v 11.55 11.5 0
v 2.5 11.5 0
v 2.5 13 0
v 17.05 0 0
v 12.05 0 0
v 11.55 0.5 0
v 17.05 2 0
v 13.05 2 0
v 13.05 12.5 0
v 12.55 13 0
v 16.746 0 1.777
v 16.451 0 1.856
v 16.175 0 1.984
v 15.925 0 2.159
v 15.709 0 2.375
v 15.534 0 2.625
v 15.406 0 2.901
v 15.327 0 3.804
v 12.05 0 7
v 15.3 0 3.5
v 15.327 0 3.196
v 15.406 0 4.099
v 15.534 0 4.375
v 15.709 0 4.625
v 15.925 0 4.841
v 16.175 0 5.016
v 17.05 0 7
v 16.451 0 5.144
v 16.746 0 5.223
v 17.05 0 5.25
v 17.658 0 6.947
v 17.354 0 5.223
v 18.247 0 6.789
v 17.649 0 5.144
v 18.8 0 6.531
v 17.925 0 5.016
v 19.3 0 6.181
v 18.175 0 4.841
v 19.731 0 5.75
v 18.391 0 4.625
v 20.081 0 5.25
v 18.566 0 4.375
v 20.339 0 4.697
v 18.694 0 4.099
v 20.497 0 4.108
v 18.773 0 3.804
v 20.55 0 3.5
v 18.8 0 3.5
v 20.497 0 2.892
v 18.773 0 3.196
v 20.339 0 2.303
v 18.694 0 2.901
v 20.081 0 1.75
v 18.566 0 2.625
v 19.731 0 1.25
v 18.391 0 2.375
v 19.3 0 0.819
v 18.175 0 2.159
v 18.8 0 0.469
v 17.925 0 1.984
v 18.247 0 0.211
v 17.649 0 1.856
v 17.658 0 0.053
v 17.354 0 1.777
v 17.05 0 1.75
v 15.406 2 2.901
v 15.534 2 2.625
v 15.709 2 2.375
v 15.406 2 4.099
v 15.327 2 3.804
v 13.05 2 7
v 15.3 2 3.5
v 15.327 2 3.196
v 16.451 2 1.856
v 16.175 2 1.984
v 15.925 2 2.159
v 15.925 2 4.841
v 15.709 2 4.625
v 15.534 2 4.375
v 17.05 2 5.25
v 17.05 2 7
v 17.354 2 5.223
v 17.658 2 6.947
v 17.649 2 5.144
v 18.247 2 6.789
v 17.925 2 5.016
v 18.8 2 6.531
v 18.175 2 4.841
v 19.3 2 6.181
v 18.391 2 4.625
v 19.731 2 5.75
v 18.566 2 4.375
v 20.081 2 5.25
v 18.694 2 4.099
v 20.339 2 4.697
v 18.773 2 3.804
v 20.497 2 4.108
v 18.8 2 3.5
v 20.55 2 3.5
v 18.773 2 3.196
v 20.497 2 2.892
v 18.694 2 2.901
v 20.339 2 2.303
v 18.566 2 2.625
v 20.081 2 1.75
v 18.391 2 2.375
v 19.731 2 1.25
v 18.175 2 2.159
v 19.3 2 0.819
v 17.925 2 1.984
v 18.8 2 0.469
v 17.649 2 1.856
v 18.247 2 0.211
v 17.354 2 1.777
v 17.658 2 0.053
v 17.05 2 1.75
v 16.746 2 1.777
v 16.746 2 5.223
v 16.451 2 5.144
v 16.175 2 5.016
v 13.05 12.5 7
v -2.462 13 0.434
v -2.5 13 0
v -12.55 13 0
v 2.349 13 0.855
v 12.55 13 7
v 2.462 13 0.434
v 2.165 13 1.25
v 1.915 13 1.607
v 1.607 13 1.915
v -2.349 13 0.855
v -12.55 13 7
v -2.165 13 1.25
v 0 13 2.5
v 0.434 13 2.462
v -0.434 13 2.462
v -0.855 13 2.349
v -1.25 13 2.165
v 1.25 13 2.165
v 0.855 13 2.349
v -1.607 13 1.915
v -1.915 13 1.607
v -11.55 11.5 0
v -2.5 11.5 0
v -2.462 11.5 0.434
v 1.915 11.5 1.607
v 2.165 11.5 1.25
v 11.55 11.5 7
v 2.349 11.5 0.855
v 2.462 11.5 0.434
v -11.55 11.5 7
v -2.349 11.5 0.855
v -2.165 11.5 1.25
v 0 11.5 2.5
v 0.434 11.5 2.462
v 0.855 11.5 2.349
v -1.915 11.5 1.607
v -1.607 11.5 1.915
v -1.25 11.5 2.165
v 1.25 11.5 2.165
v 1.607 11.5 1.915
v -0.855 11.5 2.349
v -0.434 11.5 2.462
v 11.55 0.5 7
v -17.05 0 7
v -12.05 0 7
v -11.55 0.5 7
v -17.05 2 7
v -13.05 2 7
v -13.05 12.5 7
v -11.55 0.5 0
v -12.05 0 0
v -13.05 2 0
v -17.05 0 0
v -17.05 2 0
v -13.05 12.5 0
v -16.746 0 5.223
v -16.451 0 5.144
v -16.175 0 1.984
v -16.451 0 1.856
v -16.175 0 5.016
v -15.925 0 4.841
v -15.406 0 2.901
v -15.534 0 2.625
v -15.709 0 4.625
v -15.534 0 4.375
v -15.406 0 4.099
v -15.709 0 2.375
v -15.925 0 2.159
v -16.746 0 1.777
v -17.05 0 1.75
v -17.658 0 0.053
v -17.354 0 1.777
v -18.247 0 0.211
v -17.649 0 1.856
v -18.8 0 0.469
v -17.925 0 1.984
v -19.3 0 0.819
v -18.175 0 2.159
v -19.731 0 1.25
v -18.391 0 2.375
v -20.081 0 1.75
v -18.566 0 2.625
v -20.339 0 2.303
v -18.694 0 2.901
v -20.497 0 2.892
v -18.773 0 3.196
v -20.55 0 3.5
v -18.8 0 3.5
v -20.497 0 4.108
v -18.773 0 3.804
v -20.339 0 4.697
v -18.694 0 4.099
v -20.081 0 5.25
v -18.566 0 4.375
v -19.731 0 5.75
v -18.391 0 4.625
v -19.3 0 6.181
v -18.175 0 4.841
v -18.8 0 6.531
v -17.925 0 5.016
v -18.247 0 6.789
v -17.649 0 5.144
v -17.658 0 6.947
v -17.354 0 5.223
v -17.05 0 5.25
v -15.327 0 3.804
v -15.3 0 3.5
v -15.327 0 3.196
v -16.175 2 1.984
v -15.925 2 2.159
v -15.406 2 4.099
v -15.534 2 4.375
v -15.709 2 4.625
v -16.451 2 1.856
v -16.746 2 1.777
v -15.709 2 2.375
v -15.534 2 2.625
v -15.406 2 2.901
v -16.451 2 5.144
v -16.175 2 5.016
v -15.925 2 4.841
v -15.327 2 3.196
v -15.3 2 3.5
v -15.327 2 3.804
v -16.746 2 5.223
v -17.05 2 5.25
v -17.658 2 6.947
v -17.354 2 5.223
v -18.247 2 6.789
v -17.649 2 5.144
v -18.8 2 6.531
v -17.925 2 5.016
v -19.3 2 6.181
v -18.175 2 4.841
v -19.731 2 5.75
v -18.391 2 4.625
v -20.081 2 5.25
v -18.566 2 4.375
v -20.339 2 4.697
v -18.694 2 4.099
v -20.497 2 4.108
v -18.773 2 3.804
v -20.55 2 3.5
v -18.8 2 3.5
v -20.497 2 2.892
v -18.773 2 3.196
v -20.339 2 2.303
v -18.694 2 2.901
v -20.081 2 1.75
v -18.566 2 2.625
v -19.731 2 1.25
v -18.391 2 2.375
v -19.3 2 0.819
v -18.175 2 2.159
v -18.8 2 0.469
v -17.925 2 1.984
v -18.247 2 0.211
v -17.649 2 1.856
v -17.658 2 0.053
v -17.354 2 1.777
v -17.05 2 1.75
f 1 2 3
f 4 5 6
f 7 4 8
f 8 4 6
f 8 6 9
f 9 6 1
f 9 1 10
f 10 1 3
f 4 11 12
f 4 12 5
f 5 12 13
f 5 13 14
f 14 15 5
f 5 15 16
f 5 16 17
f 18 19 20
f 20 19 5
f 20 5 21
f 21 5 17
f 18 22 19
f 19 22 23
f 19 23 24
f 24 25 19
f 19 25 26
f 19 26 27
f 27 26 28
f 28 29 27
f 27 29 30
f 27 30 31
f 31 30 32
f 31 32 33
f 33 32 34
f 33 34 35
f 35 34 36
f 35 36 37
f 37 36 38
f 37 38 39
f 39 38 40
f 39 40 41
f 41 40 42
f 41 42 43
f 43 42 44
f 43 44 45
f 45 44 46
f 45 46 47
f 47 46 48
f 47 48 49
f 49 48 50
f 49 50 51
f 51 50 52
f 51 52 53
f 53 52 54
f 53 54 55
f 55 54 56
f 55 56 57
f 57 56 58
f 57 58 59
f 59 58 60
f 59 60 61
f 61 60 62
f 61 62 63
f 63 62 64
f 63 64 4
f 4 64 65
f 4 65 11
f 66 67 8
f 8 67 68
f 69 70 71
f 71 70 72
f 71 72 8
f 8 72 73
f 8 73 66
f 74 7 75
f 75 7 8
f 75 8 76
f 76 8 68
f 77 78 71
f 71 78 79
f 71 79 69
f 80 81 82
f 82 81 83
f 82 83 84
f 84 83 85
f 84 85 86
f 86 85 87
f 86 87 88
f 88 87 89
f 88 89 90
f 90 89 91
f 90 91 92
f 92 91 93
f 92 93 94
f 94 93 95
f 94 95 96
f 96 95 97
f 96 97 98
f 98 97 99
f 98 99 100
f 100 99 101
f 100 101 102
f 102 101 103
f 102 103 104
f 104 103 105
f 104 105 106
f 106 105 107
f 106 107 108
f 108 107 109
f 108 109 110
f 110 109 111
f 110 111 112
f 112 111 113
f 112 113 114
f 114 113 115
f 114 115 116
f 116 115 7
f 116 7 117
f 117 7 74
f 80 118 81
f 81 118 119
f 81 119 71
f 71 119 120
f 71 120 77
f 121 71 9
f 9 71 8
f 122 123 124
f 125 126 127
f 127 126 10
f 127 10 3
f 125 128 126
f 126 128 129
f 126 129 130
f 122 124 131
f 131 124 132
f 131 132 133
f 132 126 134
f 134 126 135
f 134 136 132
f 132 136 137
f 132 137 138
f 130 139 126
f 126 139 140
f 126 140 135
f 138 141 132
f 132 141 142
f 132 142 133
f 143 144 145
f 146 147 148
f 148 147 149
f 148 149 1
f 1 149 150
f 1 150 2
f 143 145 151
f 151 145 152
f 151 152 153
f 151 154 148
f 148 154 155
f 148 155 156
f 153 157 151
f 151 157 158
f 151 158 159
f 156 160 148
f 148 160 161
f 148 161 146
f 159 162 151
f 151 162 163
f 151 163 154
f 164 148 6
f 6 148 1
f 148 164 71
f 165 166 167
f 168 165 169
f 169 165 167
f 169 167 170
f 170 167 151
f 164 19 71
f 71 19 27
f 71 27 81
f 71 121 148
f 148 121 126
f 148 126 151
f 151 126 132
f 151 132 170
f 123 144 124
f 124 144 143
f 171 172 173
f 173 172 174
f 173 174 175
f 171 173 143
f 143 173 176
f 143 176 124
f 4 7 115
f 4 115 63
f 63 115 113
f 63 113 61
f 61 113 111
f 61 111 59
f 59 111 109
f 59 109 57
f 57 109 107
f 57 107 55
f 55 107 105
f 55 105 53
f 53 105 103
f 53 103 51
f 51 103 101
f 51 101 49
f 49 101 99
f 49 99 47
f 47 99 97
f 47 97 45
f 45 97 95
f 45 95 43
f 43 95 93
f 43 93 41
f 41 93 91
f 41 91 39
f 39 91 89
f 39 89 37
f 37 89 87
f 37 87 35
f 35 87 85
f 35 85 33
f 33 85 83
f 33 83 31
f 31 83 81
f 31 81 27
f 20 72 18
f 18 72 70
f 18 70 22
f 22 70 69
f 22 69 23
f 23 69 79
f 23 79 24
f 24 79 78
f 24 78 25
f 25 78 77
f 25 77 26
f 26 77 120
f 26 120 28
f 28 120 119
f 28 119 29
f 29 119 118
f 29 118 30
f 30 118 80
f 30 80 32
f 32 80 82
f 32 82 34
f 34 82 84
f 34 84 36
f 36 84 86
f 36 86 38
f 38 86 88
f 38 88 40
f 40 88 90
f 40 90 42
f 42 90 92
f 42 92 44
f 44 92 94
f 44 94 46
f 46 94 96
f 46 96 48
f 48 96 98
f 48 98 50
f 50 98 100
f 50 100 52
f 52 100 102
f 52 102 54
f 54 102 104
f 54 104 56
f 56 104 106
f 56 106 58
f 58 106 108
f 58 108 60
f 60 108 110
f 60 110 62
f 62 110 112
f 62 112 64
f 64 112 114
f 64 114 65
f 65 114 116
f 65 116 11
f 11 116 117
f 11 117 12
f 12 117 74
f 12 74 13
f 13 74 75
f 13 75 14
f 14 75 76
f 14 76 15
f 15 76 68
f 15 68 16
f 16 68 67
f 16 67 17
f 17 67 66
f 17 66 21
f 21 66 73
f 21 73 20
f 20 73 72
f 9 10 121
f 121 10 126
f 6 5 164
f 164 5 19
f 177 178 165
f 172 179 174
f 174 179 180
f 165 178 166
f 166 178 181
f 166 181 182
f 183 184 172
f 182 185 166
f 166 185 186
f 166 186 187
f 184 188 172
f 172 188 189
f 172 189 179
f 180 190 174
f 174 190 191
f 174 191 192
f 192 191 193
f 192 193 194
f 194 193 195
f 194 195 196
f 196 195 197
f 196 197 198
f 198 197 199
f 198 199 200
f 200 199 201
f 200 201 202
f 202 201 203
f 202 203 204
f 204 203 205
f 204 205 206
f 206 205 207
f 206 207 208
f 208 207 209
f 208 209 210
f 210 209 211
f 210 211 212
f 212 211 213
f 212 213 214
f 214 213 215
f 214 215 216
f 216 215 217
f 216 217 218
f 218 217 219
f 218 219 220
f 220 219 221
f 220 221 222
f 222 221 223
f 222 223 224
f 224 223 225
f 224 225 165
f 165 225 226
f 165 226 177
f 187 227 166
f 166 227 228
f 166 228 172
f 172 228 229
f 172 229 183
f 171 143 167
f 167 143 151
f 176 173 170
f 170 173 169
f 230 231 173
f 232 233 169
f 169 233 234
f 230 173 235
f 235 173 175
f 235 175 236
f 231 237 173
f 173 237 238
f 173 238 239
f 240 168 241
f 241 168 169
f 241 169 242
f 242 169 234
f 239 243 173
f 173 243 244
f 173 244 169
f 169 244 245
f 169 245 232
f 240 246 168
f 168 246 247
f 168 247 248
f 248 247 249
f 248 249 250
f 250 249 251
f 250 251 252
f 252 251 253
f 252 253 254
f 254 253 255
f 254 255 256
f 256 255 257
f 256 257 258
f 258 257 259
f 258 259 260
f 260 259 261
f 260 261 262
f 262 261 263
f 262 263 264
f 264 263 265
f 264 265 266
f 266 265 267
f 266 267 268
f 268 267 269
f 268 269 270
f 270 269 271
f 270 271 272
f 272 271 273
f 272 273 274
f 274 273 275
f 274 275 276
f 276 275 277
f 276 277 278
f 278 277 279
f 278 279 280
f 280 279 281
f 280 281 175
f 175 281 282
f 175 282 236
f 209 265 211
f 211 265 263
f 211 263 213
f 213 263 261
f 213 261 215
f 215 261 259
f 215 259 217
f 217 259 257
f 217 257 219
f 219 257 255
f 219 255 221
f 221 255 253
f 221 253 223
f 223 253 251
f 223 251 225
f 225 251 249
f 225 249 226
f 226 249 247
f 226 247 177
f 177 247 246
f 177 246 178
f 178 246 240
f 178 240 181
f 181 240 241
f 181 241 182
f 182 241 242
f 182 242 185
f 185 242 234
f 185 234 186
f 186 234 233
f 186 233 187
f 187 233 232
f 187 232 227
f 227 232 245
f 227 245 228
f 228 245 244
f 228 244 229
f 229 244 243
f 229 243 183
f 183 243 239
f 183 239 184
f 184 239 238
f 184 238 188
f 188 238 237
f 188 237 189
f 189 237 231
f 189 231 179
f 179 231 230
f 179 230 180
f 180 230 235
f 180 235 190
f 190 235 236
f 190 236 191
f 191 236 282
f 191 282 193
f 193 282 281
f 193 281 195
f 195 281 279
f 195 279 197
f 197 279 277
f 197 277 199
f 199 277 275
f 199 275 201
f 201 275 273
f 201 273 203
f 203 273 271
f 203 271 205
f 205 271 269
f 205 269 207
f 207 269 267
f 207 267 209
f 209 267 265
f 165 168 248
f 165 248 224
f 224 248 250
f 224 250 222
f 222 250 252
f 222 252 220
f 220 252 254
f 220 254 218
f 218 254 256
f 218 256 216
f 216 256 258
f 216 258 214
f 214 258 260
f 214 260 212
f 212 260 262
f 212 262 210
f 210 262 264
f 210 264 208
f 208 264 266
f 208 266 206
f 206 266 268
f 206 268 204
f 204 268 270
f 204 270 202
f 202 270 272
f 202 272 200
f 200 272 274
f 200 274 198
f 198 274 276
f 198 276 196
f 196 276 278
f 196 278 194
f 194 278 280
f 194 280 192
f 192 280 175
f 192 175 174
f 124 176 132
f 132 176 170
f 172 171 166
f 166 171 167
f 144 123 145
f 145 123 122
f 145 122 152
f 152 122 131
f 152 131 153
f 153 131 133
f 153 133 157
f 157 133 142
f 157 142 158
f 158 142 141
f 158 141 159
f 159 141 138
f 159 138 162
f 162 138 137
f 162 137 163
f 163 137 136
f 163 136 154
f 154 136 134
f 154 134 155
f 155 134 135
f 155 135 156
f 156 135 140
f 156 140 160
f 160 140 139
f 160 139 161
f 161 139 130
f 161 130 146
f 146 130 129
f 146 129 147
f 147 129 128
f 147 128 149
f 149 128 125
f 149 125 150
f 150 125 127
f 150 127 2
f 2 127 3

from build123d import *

# Parameters (mm, degrees)
BOSS_EXTRUDE1_DEPTH      = 7
SKETCH2_R                = 1.75
CUT_EXTRUDE1_DEPTH       = 25.760906688
CHAMFER1_SIZE            = 0.5
CHAMFER1_OF_MIRROR1_SIZE = 0.5
CUT_EXTRUDE2_DEPTH       = 26.304199256


with BuildPart() as part:
    # Sketch1 → Boss-Extrude1 (new body)
    with BuildSketch(Plane.XY):
        Polygon((0, 11.5), (11.55, 11.5), (11.55, 0), (21.05, 0), (21.05, 2), (13.05, 2), (13.05, 13), (0, 13), align=None)
    boss_extrude1 = extrude(amount=BOSS_EXTRUDE1_DEPTH)

    # Sketch2 → Cut-Extrude1 (cut, through all)
    with BuildSketch(Plane(origin=(0, 2, 0), x_dir=(1, 0, 0), z_dir=(0, 1, 0))):
        with Locations(Location((17.05, -3.5, 0), (0, 0, 180))):
            Circle(SKETCH2_R)
        with BuildLine():
            Line((17.05, 0), (21.05, 0))
            Line((21.05, 0), (21.05, -7))
            Line((21.05, -7), (17.05, -7))
            ThreePointArc((17.05, -7), (20.55, -3.5), (17.05, 0))
        make_face()
    cut_extrude1 = extrude(amount=-CUT_EXTRUDE1_DEPTH, mode=Mode.SUBTRACT)

    # Chamfer1
    chamfer1_edges = [part.edges().sort_by_distance(p)[0] for p in [
        (11.55, 0, 3.5),
        (13.05, 13, 3.5),
    ]]
    chamfer(chamfer1_edges, length=CHAMFER1_SIZE)

    # Mirror1: Boss-Extrude1, Cut-Extrude1 across plane
    add(boss_extrude1.mirror(Plane(origin=(0, 0, 0), x_dir=(0, 0, 1), z_dir=(1, 0, 0))))
    add(cut_extrude1.mirror(Plane(origin=(0, 0, 0), x_dir=(0, 0, 1), z_dir=(1, 0, 0))), mode=Mode.SUBTRACT)

    # Chamfer1 of Mirror1
    chamfer1_of_mirror1_edges = [part.edges().sort_by_distance(p)[0] for p in [
        (-11.55, 0, 3.5),
        (-13.05, 13, 3.5),
    ]]
    chamfer(chamfer1_of_mirror1_edges, length=CHAMFER1_OF_MIRROR1_SIZE)

    # Sketch3 → Cut-Extrude2 (cut, through all)
    with BuildSketch(Plane(origin=(0, 13, 0), x_dir=(1, 0, 0), z_dir=(0, 1, 0))):
        with BuildLine():
            Line((-2.5, 0), (2.5, 0))
            ThreePointArc((2.5, 0), (0, -2.5), (-2.5, 0))
        make_face()
    extrude(amount=-CUT_EXTRUDE2_DEPTH, mode=Mode.SUBTRACT)


solid = part.part
